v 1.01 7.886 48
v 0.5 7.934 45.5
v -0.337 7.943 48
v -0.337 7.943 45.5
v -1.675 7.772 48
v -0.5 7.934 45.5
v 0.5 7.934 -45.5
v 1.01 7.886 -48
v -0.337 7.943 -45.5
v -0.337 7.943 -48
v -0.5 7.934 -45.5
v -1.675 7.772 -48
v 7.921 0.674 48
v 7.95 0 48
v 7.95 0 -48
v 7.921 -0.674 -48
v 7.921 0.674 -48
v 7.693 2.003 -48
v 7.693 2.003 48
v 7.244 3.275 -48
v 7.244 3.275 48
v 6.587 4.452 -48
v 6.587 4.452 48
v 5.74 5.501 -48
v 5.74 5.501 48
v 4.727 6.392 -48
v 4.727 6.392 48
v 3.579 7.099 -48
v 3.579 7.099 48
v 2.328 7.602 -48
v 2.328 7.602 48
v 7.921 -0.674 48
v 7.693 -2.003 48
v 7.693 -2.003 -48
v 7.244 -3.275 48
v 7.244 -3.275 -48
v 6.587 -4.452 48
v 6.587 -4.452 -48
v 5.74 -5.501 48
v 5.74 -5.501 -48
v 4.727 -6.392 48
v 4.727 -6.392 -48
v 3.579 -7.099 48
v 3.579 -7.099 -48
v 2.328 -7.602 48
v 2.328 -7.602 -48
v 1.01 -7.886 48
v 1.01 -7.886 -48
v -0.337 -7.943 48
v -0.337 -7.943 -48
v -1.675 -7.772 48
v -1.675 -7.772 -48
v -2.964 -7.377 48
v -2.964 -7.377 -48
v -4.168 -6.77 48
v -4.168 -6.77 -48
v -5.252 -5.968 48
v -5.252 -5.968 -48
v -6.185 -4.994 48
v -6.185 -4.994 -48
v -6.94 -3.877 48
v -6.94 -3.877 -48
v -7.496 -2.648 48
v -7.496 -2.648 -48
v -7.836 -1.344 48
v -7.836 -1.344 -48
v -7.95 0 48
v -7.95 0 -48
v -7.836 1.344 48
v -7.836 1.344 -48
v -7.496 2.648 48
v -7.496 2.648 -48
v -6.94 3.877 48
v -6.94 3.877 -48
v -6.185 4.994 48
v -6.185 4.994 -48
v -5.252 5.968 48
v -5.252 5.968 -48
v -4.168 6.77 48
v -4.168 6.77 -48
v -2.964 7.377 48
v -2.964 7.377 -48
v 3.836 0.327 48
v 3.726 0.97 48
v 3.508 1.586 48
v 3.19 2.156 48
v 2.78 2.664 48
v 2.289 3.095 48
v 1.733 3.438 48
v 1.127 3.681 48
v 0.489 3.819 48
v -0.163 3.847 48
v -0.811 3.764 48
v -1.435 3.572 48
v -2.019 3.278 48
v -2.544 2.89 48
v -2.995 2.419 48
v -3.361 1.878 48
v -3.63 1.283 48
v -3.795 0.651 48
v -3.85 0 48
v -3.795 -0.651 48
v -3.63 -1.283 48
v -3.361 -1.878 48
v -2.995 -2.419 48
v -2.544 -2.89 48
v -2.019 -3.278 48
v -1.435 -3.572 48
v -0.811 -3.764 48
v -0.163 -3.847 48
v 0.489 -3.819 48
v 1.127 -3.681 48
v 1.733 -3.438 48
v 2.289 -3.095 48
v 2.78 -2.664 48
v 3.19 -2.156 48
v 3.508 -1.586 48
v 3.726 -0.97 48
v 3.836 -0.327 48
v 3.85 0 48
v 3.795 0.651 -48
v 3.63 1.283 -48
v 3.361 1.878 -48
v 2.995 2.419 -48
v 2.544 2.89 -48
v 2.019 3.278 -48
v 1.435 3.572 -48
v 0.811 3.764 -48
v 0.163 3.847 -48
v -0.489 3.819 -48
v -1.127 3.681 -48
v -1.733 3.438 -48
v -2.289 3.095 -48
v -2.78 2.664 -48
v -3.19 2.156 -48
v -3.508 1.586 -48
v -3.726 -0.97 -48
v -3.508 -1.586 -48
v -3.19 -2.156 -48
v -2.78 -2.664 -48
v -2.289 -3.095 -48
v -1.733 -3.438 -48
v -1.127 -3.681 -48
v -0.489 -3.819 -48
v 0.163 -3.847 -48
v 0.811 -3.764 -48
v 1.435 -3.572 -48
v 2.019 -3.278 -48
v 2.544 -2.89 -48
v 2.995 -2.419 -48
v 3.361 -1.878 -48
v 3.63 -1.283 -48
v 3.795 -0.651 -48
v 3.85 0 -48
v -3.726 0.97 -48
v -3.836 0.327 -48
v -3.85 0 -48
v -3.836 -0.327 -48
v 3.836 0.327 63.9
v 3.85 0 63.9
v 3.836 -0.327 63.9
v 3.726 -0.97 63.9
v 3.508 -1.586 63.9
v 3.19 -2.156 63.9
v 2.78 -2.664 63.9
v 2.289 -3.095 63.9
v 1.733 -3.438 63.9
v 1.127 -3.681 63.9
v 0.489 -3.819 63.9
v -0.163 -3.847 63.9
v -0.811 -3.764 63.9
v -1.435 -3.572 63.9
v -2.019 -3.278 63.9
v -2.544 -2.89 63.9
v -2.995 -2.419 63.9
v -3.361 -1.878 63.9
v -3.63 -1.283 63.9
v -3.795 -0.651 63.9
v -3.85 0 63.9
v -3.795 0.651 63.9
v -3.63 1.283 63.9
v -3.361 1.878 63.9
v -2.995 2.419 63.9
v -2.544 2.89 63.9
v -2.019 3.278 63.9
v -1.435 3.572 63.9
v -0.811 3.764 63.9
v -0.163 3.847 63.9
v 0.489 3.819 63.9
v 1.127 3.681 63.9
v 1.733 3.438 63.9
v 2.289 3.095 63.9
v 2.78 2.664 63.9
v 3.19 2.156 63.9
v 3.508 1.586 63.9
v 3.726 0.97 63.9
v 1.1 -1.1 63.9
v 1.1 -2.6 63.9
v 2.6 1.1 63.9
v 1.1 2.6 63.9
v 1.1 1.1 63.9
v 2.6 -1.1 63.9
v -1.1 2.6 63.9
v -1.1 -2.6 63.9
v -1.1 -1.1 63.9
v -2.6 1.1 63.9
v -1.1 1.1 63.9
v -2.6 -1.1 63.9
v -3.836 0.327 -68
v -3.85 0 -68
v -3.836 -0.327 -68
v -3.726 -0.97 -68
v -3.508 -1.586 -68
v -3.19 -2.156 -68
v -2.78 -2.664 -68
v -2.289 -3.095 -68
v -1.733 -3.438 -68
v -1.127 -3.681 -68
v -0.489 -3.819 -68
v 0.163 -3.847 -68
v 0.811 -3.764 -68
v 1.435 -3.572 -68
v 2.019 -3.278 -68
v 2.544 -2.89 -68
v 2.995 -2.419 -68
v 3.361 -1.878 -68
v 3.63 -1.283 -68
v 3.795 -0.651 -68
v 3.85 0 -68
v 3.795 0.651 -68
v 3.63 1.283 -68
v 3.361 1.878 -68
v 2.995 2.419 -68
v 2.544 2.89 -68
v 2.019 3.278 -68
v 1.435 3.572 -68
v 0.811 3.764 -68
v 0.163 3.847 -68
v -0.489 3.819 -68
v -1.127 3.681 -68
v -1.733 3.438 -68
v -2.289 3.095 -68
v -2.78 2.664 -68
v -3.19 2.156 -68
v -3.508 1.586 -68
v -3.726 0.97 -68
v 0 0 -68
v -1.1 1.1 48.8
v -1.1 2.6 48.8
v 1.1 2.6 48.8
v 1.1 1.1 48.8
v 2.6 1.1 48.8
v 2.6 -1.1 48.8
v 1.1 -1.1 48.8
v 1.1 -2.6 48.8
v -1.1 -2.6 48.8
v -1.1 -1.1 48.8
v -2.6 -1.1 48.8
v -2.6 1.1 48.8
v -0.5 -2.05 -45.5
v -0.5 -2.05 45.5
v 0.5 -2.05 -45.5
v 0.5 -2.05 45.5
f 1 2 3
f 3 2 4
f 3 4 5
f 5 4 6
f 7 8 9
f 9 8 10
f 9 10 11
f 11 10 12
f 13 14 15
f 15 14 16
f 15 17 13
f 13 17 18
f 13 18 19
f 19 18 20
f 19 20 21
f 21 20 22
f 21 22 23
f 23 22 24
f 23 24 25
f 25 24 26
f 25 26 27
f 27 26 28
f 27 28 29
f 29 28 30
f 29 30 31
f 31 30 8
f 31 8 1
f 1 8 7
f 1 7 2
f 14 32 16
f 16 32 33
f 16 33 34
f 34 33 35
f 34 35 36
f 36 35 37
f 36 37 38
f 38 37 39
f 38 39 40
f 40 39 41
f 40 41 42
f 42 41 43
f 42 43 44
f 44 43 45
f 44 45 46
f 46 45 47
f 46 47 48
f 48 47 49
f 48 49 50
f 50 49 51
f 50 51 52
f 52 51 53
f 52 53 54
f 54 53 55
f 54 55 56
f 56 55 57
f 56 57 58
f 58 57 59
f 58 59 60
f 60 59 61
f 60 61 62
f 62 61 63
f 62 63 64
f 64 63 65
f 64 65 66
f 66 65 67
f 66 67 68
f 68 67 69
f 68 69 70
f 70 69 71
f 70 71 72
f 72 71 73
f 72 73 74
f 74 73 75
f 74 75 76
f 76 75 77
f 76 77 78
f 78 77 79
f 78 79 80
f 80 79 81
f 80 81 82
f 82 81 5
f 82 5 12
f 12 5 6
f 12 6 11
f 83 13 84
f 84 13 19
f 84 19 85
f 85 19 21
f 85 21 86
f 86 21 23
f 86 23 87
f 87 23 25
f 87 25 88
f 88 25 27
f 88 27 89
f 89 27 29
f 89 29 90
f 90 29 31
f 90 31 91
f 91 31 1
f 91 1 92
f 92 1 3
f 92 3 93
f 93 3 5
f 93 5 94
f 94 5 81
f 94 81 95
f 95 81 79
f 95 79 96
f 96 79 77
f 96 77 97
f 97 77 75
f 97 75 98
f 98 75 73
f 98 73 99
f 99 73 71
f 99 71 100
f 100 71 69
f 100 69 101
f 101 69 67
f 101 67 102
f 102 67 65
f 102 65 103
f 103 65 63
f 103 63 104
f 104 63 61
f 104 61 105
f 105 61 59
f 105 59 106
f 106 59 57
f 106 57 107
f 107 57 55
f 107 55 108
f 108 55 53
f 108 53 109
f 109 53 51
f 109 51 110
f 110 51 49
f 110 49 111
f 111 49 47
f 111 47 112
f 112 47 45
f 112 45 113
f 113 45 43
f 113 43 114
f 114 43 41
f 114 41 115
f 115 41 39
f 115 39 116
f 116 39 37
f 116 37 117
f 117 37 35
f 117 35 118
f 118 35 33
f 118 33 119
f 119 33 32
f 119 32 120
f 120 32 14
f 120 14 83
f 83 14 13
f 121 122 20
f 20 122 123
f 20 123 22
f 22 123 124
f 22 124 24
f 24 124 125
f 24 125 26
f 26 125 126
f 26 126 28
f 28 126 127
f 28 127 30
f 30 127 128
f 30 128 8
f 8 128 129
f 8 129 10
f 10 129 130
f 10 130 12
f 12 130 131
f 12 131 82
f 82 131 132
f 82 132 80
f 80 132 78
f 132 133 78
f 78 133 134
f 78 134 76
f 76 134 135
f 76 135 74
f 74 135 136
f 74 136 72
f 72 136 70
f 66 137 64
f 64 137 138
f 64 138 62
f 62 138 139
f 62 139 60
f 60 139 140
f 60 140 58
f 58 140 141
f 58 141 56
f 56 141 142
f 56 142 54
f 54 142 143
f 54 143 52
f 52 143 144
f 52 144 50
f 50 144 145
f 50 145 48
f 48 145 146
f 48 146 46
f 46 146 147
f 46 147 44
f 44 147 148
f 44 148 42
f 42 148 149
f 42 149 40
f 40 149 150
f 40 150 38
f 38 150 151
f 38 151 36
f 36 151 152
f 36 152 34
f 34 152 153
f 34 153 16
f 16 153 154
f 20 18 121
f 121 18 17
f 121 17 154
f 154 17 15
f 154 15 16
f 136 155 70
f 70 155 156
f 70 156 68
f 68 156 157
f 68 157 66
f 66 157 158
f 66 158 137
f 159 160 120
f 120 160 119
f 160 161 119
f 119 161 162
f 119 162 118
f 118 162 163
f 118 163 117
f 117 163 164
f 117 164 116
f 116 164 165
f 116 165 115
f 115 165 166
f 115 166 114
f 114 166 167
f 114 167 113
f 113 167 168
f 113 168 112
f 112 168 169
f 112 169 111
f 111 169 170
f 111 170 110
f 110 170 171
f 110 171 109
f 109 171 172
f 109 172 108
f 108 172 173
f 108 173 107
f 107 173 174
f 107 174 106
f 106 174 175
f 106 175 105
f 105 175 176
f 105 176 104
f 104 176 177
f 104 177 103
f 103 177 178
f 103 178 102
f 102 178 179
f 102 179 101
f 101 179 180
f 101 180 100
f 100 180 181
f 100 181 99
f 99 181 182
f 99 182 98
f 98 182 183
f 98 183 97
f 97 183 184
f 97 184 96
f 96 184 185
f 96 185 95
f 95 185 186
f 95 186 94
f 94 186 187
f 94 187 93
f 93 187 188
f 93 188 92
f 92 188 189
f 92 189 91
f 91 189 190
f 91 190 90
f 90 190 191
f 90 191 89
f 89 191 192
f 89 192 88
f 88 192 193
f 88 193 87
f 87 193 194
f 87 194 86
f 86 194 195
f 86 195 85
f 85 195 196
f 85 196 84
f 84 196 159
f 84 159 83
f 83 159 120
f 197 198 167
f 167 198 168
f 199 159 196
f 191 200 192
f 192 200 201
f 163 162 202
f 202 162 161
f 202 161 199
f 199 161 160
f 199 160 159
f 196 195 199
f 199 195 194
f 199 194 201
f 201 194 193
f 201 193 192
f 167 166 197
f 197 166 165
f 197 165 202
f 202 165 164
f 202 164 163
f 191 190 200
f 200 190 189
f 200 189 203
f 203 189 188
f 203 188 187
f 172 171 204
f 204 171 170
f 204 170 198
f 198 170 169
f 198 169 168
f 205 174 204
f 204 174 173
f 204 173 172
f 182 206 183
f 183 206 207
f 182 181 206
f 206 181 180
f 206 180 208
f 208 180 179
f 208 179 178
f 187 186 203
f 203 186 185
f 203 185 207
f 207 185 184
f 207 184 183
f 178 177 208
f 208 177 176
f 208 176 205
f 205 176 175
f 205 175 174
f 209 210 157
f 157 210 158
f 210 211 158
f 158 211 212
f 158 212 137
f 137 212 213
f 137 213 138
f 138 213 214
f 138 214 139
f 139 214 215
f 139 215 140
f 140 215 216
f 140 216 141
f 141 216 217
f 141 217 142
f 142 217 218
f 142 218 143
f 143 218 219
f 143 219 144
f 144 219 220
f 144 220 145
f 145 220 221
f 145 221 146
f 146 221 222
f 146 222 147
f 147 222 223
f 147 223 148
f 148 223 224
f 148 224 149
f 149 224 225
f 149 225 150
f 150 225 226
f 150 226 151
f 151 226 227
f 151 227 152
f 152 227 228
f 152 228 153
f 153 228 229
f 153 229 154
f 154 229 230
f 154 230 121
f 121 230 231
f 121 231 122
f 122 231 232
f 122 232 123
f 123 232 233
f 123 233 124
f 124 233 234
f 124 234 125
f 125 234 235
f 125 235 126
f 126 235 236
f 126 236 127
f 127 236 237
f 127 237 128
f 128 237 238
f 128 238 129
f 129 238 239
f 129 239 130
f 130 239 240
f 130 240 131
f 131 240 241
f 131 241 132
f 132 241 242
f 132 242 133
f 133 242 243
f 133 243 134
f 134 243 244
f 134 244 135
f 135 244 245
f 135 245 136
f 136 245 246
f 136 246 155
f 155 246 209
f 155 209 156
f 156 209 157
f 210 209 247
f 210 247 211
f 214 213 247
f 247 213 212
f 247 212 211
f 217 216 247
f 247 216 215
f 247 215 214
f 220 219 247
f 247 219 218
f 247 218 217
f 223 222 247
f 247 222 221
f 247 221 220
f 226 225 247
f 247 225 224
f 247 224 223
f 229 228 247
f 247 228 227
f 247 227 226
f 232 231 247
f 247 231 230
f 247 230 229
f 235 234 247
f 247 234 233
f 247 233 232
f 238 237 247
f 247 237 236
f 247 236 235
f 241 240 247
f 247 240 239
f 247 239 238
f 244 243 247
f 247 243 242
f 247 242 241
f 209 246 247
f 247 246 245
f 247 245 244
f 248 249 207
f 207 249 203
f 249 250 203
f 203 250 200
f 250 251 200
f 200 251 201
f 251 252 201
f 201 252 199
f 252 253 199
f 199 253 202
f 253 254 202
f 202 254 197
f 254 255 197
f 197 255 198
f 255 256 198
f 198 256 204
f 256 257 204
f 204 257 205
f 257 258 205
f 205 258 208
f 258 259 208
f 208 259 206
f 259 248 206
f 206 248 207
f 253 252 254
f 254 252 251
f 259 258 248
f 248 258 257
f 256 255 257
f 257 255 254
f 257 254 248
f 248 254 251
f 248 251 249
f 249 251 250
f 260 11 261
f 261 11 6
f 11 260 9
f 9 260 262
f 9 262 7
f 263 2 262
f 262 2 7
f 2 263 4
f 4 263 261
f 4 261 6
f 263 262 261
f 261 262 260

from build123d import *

# Parameters (mm, degrees)
SKETCH1_R           = 7.95
BOSS_EXTRUDE1_DEPTH = 48
SKETCH3_R           = 3.85
BOSS_EXTRUDE2_DEPTH = 15.9
BOSS_EXTRUDE3_START = 20
SKETCH8_R           = 3.85
BOSS_EXTRUDE3_DEPTH = 20
CUT_EXTRUDE2_DEPTH  = 15.1
SKETCH4_W           = 1
SKETCH4_H           = 91
CUT_EXTRUDE1_DEPTH  = 10


with BuildPart() as part:
    # Sketch1 → Boss-Extrude1 (new, symmetric)
    with BuildSketch(Plane.XY):
        Circle(SKETCH1_R)
    extrude(amount=BOSS_EXTRUDE1_DEPTH, both=True)

    # Sketch3 → Boss-Extrude2 (add)
    with BuildSketch(Plane.XY.offset(48)):
        Circle(SKETCH3_R)
    extrude(amount=BOSS_EXTRUDE2_DEPTH)

    # Sketch8 → Boss-Extrude3 (add)
    with BuildSketch(Plane(origin=(0, 0, -48), x_dir=(-1, 0, 0), z_dir=(0, 0, -1)).offset(BOSS_EXTRUDE3_START)):
        with Locations(Location((0, 0, 0), (0, 0, 180))):
            Circle(SKETCH8_R)
    extrude(amount=-BOSS_EXTRUDE3_DEPTH)

    # Sketch6 → Cut-Extrude2 (cut)
    with BuildSketch(Plane.XY.offset(63.9)):
        Polygon((-1.1, 2.6), (1.1, 2.6), (1.1, 1.1), (2.6, 1.1), (2.6, -1.1), (1.1, -1.1), (1.1, -2.6), (-1.1, -2.6), (-1.1, -1.1), (-2.6, -1.1), (-2.6, 1.1), (-1.1, 1.1), align=None)
    extrude(amount=-CUT_EXTRUDE2_DEPTH, mode=Mode.SUBTRACT)

    # Sketch4 → Cut-Extrude1 (cut)
    with BuildSketch(Plane(origin=(0, 7.95, 0), x_dir=(1, 0, 0), z_dir=(0, 1, 0))):
        Rectangle(SKETCH4_W, SKETCH4_H)
    extrude(amount=-CUT_EXTRUDE1_DEPTH, mode=Mode.SUBTRACT)


solid = part.part
